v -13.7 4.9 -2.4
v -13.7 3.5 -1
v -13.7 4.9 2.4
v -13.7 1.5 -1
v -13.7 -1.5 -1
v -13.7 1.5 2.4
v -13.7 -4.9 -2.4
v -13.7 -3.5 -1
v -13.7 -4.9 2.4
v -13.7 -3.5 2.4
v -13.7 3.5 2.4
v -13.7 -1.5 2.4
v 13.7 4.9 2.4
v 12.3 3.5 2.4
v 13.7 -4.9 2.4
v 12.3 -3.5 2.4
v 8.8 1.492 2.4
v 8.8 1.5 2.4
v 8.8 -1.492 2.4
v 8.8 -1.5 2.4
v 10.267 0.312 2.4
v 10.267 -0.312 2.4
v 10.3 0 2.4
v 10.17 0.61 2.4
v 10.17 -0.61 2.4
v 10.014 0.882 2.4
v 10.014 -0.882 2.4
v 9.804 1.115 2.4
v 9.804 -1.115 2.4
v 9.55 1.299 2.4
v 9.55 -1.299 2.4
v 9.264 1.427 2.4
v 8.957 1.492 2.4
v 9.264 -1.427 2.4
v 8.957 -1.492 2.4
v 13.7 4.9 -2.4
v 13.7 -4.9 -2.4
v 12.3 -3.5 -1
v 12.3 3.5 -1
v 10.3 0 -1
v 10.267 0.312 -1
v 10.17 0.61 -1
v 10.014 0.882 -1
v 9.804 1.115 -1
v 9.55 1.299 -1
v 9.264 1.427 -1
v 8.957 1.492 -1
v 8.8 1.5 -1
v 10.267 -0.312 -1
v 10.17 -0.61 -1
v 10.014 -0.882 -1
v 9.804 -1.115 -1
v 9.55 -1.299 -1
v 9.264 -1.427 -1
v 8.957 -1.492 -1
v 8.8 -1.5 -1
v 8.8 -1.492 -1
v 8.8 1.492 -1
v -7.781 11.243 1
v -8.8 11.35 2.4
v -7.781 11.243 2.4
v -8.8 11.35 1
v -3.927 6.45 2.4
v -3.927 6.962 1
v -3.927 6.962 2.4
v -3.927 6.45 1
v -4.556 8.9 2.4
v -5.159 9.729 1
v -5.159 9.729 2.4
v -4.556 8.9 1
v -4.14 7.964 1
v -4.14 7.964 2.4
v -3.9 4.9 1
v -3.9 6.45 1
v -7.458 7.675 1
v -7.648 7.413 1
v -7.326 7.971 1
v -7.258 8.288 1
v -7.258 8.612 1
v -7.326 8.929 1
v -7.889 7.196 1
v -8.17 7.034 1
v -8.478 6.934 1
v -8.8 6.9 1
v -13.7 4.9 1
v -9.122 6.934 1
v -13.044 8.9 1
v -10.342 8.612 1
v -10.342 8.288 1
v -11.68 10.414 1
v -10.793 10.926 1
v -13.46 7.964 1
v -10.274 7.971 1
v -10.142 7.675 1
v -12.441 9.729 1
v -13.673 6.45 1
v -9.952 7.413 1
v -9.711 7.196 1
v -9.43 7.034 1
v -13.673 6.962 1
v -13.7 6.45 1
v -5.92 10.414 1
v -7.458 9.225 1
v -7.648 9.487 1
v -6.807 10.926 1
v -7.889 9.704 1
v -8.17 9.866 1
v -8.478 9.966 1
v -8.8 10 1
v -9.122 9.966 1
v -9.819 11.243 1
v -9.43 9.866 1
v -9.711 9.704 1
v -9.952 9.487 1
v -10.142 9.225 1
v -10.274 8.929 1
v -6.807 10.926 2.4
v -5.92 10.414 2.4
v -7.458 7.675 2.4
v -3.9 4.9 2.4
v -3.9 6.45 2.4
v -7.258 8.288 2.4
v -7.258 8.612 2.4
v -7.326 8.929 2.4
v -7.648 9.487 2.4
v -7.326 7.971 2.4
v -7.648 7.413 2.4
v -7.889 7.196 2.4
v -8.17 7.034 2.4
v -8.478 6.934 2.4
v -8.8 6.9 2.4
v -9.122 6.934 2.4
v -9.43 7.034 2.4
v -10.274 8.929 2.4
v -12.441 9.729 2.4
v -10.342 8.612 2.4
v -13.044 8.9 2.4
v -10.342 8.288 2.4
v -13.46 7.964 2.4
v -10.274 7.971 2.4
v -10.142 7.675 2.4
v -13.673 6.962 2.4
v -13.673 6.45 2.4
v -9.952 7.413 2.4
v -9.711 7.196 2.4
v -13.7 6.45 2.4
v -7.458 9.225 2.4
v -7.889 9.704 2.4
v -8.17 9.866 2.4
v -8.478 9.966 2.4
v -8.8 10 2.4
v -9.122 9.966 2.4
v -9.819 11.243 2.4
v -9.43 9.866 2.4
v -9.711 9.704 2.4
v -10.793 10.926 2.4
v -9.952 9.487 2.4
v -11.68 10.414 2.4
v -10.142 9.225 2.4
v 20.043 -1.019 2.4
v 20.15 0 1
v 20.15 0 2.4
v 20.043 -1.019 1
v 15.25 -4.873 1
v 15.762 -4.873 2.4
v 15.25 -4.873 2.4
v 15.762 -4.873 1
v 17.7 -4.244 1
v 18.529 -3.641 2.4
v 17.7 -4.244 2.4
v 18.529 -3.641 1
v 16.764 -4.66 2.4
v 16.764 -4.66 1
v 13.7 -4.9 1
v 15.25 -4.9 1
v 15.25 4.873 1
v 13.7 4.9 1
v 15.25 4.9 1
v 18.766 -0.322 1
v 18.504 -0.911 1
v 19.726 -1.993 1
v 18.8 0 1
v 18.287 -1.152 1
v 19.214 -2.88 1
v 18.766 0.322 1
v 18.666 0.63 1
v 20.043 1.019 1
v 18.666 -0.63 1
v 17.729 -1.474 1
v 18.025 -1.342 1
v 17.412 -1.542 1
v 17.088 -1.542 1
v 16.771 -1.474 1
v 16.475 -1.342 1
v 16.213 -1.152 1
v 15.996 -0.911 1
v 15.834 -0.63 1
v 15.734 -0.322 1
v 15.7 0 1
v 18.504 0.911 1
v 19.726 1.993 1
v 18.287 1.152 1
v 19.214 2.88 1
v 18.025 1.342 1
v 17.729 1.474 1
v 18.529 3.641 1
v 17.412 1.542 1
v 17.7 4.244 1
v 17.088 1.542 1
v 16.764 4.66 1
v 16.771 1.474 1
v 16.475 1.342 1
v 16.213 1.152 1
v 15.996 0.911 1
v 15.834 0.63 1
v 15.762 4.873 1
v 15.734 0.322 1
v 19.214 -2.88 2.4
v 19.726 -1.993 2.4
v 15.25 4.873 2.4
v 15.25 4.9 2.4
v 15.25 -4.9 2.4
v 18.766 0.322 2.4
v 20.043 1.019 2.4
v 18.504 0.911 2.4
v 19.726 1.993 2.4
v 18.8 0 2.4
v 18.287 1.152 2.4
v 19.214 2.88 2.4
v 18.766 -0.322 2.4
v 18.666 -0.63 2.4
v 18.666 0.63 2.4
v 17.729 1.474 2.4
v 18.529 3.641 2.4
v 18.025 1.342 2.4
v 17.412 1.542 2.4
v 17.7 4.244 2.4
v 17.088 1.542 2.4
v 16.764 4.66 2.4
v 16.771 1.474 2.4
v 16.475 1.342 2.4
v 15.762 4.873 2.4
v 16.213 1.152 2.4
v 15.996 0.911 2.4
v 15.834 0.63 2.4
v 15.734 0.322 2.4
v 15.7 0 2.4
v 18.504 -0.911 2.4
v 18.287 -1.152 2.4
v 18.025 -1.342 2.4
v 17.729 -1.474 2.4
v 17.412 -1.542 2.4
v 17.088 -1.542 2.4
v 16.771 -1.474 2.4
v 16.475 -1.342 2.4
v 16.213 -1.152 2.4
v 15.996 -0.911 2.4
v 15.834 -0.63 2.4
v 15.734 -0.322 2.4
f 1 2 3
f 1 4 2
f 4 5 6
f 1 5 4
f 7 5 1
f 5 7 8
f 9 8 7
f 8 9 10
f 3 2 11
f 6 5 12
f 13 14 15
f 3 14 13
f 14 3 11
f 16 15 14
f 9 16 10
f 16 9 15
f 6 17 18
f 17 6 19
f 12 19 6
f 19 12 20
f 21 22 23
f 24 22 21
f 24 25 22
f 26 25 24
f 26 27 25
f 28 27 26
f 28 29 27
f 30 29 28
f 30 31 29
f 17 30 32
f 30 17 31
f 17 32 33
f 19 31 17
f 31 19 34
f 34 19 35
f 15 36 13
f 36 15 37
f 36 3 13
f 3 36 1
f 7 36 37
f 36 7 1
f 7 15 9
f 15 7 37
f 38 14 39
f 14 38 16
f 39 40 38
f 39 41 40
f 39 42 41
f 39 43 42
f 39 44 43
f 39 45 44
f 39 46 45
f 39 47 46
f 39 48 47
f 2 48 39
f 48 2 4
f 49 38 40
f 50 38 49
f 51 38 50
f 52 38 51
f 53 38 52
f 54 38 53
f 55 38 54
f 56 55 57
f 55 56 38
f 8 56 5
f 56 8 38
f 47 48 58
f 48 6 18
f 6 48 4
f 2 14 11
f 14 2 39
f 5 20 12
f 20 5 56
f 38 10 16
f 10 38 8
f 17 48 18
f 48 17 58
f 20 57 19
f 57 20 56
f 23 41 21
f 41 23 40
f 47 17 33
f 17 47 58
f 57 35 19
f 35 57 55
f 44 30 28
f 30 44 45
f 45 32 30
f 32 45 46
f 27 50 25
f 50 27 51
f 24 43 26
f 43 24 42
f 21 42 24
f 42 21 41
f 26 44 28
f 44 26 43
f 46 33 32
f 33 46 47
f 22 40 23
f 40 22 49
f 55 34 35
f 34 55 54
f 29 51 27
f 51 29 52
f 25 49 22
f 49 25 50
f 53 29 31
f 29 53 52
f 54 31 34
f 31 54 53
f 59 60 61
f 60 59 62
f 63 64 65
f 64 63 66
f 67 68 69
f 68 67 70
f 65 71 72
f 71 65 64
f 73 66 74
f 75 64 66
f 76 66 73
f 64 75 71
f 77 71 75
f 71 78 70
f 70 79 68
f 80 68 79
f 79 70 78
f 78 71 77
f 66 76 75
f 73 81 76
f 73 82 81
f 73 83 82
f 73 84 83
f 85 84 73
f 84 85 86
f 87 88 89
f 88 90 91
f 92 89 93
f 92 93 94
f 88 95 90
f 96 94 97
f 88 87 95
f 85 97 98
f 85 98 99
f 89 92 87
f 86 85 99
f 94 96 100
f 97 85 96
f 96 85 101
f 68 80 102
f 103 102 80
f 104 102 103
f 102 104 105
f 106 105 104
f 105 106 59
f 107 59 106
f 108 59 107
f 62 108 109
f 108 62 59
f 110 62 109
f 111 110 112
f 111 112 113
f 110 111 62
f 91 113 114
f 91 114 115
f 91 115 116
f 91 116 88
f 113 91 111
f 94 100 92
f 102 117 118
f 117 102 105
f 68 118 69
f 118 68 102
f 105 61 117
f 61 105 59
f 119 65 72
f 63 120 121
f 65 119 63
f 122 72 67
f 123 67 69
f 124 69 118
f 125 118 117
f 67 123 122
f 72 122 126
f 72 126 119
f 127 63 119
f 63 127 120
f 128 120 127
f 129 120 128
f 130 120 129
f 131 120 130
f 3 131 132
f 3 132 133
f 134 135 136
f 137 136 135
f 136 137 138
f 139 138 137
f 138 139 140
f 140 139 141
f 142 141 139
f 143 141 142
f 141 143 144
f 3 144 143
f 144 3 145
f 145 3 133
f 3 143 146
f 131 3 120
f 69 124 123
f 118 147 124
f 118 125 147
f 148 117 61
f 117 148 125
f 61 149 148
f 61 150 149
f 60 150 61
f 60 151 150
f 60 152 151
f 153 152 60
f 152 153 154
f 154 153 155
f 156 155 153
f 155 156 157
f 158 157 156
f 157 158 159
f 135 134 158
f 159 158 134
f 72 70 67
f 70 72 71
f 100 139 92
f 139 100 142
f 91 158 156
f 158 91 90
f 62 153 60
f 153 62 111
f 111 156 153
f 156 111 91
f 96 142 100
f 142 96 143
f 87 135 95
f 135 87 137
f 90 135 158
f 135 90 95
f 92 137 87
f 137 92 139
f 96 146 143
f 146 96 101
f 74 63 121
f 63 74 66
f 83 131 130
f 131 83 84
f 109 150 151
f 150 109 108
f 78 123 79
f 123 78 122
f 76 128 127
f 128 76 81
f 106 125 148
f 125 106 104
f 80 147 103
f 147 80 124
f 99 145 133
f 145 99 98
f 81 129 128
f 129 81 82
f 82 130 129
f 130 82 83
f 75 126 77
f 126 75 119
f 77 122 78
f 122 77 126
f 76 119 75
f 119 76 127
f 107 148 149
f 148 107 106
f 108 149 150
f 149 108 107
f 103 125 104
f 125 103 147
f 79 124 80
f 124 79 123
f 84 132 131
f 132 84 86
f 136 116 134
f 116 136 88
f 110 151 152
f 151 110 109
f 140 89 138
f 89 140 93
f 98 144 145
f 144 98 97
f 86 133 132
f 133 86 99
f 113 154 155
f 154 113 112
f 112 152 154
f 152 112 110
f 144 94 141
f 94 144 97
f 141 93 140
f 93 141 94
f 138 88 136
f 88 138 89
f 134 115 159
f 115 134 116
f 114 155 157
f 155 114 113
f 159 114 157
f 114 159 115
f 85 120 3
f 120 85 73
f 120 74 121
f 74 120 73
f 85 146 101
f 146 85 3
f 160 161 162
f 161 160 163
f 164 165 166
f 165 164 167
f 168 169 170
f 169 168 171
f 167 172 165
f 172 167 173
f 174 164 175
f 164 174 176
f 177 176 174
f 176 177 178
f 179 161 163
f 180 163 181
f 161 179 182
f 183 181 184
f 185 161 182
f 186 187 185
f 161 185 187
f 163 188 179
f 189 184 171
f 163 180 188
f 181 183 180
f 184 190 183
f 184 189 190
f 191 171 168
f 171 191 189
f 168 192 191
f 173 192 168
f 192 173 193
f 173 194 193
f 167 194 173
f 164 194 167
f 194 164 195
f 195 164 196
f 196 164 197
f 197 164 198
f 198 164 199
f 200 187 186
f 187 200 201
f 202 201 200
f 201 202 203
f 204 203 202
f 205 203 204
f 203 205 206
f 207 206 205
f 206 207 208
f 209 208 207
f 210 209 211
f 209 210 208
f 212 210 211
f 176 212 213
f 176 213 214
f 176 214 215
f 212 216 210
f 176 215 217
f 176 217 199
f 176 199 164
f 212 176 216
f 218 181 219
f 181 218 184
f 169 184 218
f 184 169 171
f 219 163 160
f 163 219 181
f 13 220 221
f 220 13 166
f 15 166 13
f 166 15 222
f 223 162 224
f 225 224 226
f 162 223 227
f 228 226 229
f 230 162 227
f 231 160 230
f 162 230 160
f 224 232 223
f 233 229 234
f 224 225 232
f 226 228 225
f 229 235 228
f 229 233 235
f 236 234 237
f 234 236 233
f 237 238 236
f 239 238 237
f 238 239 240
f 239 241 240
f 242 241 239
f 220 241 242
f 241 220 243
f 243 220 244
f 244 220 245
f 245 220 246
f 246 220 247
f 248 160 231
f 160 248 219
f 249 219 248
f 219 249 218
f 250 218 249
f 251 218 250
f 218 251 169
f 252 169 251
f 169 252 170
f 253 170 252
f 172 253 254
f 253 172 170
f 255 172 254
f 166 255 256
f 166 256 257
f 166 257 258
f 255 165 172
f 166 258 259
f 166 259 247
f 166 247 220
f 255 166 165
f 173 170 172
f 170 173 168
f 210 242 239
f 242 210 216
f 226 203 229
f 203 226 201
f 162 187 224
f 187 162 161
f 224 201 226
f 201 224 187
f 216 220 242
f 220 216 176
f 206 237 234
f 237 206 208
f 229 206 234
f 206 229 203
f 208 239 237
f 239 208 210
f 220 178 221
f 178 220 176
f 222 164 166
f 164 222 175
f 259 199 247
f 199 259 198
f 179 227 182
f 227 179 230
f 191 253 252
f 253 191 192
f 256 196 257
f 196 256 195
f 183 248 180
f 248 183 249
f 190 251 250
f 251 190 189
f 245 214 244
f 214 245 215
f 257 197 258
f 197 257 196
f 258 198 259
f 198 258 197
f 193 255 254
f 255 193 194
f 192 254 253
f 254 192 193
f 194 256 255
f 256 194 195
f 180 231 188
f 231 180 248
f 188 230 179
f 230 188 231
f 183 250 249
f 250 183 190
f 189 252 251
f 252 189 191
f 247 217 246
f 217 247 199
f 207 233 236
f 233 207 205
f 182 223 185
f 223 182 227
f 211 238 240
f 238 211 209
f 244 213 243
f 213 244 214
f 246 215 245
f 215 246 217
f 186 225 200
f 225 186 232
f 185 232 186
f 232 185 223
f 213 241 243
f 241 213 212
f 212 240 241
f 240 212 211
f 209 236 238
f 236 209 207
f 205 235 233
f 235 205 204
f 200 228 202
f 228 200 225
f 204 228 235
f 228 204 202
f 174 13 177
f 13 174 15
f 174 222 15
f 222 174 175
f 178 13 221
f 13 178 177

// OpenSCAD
ReedLen = 16;
ReedWid = 2;
ReedAndWireLen = ReedLen + 10;
ReedAndWireWid = 10;
NubDia = 3;
Margin = 1.4;
BoxWid = 2 * ReedWid + 2 * Margin + NubDia;
BoxLen = ReedAndWireLen + Margin;
BoxH = ReedWid + 2 * Margin;
WireWid = 1.5;
MountHoleD = 3.1;         // Diameter of side mount holes.

echo(BoxWid);

module Box()
{
    difference()
    {
        // Basic box.
        cube([BoxLen, BoxWid, BoxH], center = true);

        //  Cut out space for the reed soitch and one of its leads.
        translate([-Margin, (NubDia + ReedWid) / 2, Margin]) 
            cube([BoxLen, ReedWid, BoxH], center = true);
        translate([-Margin, -(NubDia + ReedWid) / 2, Margin])
            cube([BoxLen, ReedWid, BoxH], center = true);
            
        // Add space for the rounded off the upper wire guide.  
        translate([(BoxLen - (ReedWid + NubDia / 2)) / 2 - Margin, 0, Margin]) 
            cube([ReedWid + NubDia / 2, NubDia + .01, BoxH], center = true);
    }

    // Round off the upper wire guide.
    translate([(BoxLen - NubDia) / 2 - Margin - ReedWid, 0, -BoxH / 2]) 
        cylinder(d = NubDia, h = BoxH, $fn = 30);
}

module Tab()
{
    difference()
    {
        // Create the tab circlw.
        cylinder(d = BoxWid, h = Margin, $fn = 30);
        
        // Cut off half of the tab to make a semicircle.
        translate([0, -BoxWid, -.01])
            cube([BoxWid * 2, BoxWid * 2, BoxH]);
            
        // Cut out the mounting hole.
        translate([-2, 0, -.01])
            cylinder(d = MountHoleD, h = BoxH, $fn = 30);
    }
    
    // Extend the tab to allow room for the mounting screw head.
    translate([0, -BoxWid / 2, 0]) 
        cube([MountHoleD / 2, BoxWid, Margin]);
}

module ReedSwitchMount()
{
    // Start with the basic box.
    Box();
    
    // Add the mounting tabs.
    translate([-(BoxLen - BoxWid) / 2, (BoxWid + MountHoleD) / 2, BoxH / 2 - Margin])
        rotate([0, 0, -90]) Tab();
    translate([(BoxLen + MountHoleD)/ 2, 0, BoxH / 2 - Margin])
        rotate([0, 0, 180]) Tab();
}

ReedSwitchMount();
